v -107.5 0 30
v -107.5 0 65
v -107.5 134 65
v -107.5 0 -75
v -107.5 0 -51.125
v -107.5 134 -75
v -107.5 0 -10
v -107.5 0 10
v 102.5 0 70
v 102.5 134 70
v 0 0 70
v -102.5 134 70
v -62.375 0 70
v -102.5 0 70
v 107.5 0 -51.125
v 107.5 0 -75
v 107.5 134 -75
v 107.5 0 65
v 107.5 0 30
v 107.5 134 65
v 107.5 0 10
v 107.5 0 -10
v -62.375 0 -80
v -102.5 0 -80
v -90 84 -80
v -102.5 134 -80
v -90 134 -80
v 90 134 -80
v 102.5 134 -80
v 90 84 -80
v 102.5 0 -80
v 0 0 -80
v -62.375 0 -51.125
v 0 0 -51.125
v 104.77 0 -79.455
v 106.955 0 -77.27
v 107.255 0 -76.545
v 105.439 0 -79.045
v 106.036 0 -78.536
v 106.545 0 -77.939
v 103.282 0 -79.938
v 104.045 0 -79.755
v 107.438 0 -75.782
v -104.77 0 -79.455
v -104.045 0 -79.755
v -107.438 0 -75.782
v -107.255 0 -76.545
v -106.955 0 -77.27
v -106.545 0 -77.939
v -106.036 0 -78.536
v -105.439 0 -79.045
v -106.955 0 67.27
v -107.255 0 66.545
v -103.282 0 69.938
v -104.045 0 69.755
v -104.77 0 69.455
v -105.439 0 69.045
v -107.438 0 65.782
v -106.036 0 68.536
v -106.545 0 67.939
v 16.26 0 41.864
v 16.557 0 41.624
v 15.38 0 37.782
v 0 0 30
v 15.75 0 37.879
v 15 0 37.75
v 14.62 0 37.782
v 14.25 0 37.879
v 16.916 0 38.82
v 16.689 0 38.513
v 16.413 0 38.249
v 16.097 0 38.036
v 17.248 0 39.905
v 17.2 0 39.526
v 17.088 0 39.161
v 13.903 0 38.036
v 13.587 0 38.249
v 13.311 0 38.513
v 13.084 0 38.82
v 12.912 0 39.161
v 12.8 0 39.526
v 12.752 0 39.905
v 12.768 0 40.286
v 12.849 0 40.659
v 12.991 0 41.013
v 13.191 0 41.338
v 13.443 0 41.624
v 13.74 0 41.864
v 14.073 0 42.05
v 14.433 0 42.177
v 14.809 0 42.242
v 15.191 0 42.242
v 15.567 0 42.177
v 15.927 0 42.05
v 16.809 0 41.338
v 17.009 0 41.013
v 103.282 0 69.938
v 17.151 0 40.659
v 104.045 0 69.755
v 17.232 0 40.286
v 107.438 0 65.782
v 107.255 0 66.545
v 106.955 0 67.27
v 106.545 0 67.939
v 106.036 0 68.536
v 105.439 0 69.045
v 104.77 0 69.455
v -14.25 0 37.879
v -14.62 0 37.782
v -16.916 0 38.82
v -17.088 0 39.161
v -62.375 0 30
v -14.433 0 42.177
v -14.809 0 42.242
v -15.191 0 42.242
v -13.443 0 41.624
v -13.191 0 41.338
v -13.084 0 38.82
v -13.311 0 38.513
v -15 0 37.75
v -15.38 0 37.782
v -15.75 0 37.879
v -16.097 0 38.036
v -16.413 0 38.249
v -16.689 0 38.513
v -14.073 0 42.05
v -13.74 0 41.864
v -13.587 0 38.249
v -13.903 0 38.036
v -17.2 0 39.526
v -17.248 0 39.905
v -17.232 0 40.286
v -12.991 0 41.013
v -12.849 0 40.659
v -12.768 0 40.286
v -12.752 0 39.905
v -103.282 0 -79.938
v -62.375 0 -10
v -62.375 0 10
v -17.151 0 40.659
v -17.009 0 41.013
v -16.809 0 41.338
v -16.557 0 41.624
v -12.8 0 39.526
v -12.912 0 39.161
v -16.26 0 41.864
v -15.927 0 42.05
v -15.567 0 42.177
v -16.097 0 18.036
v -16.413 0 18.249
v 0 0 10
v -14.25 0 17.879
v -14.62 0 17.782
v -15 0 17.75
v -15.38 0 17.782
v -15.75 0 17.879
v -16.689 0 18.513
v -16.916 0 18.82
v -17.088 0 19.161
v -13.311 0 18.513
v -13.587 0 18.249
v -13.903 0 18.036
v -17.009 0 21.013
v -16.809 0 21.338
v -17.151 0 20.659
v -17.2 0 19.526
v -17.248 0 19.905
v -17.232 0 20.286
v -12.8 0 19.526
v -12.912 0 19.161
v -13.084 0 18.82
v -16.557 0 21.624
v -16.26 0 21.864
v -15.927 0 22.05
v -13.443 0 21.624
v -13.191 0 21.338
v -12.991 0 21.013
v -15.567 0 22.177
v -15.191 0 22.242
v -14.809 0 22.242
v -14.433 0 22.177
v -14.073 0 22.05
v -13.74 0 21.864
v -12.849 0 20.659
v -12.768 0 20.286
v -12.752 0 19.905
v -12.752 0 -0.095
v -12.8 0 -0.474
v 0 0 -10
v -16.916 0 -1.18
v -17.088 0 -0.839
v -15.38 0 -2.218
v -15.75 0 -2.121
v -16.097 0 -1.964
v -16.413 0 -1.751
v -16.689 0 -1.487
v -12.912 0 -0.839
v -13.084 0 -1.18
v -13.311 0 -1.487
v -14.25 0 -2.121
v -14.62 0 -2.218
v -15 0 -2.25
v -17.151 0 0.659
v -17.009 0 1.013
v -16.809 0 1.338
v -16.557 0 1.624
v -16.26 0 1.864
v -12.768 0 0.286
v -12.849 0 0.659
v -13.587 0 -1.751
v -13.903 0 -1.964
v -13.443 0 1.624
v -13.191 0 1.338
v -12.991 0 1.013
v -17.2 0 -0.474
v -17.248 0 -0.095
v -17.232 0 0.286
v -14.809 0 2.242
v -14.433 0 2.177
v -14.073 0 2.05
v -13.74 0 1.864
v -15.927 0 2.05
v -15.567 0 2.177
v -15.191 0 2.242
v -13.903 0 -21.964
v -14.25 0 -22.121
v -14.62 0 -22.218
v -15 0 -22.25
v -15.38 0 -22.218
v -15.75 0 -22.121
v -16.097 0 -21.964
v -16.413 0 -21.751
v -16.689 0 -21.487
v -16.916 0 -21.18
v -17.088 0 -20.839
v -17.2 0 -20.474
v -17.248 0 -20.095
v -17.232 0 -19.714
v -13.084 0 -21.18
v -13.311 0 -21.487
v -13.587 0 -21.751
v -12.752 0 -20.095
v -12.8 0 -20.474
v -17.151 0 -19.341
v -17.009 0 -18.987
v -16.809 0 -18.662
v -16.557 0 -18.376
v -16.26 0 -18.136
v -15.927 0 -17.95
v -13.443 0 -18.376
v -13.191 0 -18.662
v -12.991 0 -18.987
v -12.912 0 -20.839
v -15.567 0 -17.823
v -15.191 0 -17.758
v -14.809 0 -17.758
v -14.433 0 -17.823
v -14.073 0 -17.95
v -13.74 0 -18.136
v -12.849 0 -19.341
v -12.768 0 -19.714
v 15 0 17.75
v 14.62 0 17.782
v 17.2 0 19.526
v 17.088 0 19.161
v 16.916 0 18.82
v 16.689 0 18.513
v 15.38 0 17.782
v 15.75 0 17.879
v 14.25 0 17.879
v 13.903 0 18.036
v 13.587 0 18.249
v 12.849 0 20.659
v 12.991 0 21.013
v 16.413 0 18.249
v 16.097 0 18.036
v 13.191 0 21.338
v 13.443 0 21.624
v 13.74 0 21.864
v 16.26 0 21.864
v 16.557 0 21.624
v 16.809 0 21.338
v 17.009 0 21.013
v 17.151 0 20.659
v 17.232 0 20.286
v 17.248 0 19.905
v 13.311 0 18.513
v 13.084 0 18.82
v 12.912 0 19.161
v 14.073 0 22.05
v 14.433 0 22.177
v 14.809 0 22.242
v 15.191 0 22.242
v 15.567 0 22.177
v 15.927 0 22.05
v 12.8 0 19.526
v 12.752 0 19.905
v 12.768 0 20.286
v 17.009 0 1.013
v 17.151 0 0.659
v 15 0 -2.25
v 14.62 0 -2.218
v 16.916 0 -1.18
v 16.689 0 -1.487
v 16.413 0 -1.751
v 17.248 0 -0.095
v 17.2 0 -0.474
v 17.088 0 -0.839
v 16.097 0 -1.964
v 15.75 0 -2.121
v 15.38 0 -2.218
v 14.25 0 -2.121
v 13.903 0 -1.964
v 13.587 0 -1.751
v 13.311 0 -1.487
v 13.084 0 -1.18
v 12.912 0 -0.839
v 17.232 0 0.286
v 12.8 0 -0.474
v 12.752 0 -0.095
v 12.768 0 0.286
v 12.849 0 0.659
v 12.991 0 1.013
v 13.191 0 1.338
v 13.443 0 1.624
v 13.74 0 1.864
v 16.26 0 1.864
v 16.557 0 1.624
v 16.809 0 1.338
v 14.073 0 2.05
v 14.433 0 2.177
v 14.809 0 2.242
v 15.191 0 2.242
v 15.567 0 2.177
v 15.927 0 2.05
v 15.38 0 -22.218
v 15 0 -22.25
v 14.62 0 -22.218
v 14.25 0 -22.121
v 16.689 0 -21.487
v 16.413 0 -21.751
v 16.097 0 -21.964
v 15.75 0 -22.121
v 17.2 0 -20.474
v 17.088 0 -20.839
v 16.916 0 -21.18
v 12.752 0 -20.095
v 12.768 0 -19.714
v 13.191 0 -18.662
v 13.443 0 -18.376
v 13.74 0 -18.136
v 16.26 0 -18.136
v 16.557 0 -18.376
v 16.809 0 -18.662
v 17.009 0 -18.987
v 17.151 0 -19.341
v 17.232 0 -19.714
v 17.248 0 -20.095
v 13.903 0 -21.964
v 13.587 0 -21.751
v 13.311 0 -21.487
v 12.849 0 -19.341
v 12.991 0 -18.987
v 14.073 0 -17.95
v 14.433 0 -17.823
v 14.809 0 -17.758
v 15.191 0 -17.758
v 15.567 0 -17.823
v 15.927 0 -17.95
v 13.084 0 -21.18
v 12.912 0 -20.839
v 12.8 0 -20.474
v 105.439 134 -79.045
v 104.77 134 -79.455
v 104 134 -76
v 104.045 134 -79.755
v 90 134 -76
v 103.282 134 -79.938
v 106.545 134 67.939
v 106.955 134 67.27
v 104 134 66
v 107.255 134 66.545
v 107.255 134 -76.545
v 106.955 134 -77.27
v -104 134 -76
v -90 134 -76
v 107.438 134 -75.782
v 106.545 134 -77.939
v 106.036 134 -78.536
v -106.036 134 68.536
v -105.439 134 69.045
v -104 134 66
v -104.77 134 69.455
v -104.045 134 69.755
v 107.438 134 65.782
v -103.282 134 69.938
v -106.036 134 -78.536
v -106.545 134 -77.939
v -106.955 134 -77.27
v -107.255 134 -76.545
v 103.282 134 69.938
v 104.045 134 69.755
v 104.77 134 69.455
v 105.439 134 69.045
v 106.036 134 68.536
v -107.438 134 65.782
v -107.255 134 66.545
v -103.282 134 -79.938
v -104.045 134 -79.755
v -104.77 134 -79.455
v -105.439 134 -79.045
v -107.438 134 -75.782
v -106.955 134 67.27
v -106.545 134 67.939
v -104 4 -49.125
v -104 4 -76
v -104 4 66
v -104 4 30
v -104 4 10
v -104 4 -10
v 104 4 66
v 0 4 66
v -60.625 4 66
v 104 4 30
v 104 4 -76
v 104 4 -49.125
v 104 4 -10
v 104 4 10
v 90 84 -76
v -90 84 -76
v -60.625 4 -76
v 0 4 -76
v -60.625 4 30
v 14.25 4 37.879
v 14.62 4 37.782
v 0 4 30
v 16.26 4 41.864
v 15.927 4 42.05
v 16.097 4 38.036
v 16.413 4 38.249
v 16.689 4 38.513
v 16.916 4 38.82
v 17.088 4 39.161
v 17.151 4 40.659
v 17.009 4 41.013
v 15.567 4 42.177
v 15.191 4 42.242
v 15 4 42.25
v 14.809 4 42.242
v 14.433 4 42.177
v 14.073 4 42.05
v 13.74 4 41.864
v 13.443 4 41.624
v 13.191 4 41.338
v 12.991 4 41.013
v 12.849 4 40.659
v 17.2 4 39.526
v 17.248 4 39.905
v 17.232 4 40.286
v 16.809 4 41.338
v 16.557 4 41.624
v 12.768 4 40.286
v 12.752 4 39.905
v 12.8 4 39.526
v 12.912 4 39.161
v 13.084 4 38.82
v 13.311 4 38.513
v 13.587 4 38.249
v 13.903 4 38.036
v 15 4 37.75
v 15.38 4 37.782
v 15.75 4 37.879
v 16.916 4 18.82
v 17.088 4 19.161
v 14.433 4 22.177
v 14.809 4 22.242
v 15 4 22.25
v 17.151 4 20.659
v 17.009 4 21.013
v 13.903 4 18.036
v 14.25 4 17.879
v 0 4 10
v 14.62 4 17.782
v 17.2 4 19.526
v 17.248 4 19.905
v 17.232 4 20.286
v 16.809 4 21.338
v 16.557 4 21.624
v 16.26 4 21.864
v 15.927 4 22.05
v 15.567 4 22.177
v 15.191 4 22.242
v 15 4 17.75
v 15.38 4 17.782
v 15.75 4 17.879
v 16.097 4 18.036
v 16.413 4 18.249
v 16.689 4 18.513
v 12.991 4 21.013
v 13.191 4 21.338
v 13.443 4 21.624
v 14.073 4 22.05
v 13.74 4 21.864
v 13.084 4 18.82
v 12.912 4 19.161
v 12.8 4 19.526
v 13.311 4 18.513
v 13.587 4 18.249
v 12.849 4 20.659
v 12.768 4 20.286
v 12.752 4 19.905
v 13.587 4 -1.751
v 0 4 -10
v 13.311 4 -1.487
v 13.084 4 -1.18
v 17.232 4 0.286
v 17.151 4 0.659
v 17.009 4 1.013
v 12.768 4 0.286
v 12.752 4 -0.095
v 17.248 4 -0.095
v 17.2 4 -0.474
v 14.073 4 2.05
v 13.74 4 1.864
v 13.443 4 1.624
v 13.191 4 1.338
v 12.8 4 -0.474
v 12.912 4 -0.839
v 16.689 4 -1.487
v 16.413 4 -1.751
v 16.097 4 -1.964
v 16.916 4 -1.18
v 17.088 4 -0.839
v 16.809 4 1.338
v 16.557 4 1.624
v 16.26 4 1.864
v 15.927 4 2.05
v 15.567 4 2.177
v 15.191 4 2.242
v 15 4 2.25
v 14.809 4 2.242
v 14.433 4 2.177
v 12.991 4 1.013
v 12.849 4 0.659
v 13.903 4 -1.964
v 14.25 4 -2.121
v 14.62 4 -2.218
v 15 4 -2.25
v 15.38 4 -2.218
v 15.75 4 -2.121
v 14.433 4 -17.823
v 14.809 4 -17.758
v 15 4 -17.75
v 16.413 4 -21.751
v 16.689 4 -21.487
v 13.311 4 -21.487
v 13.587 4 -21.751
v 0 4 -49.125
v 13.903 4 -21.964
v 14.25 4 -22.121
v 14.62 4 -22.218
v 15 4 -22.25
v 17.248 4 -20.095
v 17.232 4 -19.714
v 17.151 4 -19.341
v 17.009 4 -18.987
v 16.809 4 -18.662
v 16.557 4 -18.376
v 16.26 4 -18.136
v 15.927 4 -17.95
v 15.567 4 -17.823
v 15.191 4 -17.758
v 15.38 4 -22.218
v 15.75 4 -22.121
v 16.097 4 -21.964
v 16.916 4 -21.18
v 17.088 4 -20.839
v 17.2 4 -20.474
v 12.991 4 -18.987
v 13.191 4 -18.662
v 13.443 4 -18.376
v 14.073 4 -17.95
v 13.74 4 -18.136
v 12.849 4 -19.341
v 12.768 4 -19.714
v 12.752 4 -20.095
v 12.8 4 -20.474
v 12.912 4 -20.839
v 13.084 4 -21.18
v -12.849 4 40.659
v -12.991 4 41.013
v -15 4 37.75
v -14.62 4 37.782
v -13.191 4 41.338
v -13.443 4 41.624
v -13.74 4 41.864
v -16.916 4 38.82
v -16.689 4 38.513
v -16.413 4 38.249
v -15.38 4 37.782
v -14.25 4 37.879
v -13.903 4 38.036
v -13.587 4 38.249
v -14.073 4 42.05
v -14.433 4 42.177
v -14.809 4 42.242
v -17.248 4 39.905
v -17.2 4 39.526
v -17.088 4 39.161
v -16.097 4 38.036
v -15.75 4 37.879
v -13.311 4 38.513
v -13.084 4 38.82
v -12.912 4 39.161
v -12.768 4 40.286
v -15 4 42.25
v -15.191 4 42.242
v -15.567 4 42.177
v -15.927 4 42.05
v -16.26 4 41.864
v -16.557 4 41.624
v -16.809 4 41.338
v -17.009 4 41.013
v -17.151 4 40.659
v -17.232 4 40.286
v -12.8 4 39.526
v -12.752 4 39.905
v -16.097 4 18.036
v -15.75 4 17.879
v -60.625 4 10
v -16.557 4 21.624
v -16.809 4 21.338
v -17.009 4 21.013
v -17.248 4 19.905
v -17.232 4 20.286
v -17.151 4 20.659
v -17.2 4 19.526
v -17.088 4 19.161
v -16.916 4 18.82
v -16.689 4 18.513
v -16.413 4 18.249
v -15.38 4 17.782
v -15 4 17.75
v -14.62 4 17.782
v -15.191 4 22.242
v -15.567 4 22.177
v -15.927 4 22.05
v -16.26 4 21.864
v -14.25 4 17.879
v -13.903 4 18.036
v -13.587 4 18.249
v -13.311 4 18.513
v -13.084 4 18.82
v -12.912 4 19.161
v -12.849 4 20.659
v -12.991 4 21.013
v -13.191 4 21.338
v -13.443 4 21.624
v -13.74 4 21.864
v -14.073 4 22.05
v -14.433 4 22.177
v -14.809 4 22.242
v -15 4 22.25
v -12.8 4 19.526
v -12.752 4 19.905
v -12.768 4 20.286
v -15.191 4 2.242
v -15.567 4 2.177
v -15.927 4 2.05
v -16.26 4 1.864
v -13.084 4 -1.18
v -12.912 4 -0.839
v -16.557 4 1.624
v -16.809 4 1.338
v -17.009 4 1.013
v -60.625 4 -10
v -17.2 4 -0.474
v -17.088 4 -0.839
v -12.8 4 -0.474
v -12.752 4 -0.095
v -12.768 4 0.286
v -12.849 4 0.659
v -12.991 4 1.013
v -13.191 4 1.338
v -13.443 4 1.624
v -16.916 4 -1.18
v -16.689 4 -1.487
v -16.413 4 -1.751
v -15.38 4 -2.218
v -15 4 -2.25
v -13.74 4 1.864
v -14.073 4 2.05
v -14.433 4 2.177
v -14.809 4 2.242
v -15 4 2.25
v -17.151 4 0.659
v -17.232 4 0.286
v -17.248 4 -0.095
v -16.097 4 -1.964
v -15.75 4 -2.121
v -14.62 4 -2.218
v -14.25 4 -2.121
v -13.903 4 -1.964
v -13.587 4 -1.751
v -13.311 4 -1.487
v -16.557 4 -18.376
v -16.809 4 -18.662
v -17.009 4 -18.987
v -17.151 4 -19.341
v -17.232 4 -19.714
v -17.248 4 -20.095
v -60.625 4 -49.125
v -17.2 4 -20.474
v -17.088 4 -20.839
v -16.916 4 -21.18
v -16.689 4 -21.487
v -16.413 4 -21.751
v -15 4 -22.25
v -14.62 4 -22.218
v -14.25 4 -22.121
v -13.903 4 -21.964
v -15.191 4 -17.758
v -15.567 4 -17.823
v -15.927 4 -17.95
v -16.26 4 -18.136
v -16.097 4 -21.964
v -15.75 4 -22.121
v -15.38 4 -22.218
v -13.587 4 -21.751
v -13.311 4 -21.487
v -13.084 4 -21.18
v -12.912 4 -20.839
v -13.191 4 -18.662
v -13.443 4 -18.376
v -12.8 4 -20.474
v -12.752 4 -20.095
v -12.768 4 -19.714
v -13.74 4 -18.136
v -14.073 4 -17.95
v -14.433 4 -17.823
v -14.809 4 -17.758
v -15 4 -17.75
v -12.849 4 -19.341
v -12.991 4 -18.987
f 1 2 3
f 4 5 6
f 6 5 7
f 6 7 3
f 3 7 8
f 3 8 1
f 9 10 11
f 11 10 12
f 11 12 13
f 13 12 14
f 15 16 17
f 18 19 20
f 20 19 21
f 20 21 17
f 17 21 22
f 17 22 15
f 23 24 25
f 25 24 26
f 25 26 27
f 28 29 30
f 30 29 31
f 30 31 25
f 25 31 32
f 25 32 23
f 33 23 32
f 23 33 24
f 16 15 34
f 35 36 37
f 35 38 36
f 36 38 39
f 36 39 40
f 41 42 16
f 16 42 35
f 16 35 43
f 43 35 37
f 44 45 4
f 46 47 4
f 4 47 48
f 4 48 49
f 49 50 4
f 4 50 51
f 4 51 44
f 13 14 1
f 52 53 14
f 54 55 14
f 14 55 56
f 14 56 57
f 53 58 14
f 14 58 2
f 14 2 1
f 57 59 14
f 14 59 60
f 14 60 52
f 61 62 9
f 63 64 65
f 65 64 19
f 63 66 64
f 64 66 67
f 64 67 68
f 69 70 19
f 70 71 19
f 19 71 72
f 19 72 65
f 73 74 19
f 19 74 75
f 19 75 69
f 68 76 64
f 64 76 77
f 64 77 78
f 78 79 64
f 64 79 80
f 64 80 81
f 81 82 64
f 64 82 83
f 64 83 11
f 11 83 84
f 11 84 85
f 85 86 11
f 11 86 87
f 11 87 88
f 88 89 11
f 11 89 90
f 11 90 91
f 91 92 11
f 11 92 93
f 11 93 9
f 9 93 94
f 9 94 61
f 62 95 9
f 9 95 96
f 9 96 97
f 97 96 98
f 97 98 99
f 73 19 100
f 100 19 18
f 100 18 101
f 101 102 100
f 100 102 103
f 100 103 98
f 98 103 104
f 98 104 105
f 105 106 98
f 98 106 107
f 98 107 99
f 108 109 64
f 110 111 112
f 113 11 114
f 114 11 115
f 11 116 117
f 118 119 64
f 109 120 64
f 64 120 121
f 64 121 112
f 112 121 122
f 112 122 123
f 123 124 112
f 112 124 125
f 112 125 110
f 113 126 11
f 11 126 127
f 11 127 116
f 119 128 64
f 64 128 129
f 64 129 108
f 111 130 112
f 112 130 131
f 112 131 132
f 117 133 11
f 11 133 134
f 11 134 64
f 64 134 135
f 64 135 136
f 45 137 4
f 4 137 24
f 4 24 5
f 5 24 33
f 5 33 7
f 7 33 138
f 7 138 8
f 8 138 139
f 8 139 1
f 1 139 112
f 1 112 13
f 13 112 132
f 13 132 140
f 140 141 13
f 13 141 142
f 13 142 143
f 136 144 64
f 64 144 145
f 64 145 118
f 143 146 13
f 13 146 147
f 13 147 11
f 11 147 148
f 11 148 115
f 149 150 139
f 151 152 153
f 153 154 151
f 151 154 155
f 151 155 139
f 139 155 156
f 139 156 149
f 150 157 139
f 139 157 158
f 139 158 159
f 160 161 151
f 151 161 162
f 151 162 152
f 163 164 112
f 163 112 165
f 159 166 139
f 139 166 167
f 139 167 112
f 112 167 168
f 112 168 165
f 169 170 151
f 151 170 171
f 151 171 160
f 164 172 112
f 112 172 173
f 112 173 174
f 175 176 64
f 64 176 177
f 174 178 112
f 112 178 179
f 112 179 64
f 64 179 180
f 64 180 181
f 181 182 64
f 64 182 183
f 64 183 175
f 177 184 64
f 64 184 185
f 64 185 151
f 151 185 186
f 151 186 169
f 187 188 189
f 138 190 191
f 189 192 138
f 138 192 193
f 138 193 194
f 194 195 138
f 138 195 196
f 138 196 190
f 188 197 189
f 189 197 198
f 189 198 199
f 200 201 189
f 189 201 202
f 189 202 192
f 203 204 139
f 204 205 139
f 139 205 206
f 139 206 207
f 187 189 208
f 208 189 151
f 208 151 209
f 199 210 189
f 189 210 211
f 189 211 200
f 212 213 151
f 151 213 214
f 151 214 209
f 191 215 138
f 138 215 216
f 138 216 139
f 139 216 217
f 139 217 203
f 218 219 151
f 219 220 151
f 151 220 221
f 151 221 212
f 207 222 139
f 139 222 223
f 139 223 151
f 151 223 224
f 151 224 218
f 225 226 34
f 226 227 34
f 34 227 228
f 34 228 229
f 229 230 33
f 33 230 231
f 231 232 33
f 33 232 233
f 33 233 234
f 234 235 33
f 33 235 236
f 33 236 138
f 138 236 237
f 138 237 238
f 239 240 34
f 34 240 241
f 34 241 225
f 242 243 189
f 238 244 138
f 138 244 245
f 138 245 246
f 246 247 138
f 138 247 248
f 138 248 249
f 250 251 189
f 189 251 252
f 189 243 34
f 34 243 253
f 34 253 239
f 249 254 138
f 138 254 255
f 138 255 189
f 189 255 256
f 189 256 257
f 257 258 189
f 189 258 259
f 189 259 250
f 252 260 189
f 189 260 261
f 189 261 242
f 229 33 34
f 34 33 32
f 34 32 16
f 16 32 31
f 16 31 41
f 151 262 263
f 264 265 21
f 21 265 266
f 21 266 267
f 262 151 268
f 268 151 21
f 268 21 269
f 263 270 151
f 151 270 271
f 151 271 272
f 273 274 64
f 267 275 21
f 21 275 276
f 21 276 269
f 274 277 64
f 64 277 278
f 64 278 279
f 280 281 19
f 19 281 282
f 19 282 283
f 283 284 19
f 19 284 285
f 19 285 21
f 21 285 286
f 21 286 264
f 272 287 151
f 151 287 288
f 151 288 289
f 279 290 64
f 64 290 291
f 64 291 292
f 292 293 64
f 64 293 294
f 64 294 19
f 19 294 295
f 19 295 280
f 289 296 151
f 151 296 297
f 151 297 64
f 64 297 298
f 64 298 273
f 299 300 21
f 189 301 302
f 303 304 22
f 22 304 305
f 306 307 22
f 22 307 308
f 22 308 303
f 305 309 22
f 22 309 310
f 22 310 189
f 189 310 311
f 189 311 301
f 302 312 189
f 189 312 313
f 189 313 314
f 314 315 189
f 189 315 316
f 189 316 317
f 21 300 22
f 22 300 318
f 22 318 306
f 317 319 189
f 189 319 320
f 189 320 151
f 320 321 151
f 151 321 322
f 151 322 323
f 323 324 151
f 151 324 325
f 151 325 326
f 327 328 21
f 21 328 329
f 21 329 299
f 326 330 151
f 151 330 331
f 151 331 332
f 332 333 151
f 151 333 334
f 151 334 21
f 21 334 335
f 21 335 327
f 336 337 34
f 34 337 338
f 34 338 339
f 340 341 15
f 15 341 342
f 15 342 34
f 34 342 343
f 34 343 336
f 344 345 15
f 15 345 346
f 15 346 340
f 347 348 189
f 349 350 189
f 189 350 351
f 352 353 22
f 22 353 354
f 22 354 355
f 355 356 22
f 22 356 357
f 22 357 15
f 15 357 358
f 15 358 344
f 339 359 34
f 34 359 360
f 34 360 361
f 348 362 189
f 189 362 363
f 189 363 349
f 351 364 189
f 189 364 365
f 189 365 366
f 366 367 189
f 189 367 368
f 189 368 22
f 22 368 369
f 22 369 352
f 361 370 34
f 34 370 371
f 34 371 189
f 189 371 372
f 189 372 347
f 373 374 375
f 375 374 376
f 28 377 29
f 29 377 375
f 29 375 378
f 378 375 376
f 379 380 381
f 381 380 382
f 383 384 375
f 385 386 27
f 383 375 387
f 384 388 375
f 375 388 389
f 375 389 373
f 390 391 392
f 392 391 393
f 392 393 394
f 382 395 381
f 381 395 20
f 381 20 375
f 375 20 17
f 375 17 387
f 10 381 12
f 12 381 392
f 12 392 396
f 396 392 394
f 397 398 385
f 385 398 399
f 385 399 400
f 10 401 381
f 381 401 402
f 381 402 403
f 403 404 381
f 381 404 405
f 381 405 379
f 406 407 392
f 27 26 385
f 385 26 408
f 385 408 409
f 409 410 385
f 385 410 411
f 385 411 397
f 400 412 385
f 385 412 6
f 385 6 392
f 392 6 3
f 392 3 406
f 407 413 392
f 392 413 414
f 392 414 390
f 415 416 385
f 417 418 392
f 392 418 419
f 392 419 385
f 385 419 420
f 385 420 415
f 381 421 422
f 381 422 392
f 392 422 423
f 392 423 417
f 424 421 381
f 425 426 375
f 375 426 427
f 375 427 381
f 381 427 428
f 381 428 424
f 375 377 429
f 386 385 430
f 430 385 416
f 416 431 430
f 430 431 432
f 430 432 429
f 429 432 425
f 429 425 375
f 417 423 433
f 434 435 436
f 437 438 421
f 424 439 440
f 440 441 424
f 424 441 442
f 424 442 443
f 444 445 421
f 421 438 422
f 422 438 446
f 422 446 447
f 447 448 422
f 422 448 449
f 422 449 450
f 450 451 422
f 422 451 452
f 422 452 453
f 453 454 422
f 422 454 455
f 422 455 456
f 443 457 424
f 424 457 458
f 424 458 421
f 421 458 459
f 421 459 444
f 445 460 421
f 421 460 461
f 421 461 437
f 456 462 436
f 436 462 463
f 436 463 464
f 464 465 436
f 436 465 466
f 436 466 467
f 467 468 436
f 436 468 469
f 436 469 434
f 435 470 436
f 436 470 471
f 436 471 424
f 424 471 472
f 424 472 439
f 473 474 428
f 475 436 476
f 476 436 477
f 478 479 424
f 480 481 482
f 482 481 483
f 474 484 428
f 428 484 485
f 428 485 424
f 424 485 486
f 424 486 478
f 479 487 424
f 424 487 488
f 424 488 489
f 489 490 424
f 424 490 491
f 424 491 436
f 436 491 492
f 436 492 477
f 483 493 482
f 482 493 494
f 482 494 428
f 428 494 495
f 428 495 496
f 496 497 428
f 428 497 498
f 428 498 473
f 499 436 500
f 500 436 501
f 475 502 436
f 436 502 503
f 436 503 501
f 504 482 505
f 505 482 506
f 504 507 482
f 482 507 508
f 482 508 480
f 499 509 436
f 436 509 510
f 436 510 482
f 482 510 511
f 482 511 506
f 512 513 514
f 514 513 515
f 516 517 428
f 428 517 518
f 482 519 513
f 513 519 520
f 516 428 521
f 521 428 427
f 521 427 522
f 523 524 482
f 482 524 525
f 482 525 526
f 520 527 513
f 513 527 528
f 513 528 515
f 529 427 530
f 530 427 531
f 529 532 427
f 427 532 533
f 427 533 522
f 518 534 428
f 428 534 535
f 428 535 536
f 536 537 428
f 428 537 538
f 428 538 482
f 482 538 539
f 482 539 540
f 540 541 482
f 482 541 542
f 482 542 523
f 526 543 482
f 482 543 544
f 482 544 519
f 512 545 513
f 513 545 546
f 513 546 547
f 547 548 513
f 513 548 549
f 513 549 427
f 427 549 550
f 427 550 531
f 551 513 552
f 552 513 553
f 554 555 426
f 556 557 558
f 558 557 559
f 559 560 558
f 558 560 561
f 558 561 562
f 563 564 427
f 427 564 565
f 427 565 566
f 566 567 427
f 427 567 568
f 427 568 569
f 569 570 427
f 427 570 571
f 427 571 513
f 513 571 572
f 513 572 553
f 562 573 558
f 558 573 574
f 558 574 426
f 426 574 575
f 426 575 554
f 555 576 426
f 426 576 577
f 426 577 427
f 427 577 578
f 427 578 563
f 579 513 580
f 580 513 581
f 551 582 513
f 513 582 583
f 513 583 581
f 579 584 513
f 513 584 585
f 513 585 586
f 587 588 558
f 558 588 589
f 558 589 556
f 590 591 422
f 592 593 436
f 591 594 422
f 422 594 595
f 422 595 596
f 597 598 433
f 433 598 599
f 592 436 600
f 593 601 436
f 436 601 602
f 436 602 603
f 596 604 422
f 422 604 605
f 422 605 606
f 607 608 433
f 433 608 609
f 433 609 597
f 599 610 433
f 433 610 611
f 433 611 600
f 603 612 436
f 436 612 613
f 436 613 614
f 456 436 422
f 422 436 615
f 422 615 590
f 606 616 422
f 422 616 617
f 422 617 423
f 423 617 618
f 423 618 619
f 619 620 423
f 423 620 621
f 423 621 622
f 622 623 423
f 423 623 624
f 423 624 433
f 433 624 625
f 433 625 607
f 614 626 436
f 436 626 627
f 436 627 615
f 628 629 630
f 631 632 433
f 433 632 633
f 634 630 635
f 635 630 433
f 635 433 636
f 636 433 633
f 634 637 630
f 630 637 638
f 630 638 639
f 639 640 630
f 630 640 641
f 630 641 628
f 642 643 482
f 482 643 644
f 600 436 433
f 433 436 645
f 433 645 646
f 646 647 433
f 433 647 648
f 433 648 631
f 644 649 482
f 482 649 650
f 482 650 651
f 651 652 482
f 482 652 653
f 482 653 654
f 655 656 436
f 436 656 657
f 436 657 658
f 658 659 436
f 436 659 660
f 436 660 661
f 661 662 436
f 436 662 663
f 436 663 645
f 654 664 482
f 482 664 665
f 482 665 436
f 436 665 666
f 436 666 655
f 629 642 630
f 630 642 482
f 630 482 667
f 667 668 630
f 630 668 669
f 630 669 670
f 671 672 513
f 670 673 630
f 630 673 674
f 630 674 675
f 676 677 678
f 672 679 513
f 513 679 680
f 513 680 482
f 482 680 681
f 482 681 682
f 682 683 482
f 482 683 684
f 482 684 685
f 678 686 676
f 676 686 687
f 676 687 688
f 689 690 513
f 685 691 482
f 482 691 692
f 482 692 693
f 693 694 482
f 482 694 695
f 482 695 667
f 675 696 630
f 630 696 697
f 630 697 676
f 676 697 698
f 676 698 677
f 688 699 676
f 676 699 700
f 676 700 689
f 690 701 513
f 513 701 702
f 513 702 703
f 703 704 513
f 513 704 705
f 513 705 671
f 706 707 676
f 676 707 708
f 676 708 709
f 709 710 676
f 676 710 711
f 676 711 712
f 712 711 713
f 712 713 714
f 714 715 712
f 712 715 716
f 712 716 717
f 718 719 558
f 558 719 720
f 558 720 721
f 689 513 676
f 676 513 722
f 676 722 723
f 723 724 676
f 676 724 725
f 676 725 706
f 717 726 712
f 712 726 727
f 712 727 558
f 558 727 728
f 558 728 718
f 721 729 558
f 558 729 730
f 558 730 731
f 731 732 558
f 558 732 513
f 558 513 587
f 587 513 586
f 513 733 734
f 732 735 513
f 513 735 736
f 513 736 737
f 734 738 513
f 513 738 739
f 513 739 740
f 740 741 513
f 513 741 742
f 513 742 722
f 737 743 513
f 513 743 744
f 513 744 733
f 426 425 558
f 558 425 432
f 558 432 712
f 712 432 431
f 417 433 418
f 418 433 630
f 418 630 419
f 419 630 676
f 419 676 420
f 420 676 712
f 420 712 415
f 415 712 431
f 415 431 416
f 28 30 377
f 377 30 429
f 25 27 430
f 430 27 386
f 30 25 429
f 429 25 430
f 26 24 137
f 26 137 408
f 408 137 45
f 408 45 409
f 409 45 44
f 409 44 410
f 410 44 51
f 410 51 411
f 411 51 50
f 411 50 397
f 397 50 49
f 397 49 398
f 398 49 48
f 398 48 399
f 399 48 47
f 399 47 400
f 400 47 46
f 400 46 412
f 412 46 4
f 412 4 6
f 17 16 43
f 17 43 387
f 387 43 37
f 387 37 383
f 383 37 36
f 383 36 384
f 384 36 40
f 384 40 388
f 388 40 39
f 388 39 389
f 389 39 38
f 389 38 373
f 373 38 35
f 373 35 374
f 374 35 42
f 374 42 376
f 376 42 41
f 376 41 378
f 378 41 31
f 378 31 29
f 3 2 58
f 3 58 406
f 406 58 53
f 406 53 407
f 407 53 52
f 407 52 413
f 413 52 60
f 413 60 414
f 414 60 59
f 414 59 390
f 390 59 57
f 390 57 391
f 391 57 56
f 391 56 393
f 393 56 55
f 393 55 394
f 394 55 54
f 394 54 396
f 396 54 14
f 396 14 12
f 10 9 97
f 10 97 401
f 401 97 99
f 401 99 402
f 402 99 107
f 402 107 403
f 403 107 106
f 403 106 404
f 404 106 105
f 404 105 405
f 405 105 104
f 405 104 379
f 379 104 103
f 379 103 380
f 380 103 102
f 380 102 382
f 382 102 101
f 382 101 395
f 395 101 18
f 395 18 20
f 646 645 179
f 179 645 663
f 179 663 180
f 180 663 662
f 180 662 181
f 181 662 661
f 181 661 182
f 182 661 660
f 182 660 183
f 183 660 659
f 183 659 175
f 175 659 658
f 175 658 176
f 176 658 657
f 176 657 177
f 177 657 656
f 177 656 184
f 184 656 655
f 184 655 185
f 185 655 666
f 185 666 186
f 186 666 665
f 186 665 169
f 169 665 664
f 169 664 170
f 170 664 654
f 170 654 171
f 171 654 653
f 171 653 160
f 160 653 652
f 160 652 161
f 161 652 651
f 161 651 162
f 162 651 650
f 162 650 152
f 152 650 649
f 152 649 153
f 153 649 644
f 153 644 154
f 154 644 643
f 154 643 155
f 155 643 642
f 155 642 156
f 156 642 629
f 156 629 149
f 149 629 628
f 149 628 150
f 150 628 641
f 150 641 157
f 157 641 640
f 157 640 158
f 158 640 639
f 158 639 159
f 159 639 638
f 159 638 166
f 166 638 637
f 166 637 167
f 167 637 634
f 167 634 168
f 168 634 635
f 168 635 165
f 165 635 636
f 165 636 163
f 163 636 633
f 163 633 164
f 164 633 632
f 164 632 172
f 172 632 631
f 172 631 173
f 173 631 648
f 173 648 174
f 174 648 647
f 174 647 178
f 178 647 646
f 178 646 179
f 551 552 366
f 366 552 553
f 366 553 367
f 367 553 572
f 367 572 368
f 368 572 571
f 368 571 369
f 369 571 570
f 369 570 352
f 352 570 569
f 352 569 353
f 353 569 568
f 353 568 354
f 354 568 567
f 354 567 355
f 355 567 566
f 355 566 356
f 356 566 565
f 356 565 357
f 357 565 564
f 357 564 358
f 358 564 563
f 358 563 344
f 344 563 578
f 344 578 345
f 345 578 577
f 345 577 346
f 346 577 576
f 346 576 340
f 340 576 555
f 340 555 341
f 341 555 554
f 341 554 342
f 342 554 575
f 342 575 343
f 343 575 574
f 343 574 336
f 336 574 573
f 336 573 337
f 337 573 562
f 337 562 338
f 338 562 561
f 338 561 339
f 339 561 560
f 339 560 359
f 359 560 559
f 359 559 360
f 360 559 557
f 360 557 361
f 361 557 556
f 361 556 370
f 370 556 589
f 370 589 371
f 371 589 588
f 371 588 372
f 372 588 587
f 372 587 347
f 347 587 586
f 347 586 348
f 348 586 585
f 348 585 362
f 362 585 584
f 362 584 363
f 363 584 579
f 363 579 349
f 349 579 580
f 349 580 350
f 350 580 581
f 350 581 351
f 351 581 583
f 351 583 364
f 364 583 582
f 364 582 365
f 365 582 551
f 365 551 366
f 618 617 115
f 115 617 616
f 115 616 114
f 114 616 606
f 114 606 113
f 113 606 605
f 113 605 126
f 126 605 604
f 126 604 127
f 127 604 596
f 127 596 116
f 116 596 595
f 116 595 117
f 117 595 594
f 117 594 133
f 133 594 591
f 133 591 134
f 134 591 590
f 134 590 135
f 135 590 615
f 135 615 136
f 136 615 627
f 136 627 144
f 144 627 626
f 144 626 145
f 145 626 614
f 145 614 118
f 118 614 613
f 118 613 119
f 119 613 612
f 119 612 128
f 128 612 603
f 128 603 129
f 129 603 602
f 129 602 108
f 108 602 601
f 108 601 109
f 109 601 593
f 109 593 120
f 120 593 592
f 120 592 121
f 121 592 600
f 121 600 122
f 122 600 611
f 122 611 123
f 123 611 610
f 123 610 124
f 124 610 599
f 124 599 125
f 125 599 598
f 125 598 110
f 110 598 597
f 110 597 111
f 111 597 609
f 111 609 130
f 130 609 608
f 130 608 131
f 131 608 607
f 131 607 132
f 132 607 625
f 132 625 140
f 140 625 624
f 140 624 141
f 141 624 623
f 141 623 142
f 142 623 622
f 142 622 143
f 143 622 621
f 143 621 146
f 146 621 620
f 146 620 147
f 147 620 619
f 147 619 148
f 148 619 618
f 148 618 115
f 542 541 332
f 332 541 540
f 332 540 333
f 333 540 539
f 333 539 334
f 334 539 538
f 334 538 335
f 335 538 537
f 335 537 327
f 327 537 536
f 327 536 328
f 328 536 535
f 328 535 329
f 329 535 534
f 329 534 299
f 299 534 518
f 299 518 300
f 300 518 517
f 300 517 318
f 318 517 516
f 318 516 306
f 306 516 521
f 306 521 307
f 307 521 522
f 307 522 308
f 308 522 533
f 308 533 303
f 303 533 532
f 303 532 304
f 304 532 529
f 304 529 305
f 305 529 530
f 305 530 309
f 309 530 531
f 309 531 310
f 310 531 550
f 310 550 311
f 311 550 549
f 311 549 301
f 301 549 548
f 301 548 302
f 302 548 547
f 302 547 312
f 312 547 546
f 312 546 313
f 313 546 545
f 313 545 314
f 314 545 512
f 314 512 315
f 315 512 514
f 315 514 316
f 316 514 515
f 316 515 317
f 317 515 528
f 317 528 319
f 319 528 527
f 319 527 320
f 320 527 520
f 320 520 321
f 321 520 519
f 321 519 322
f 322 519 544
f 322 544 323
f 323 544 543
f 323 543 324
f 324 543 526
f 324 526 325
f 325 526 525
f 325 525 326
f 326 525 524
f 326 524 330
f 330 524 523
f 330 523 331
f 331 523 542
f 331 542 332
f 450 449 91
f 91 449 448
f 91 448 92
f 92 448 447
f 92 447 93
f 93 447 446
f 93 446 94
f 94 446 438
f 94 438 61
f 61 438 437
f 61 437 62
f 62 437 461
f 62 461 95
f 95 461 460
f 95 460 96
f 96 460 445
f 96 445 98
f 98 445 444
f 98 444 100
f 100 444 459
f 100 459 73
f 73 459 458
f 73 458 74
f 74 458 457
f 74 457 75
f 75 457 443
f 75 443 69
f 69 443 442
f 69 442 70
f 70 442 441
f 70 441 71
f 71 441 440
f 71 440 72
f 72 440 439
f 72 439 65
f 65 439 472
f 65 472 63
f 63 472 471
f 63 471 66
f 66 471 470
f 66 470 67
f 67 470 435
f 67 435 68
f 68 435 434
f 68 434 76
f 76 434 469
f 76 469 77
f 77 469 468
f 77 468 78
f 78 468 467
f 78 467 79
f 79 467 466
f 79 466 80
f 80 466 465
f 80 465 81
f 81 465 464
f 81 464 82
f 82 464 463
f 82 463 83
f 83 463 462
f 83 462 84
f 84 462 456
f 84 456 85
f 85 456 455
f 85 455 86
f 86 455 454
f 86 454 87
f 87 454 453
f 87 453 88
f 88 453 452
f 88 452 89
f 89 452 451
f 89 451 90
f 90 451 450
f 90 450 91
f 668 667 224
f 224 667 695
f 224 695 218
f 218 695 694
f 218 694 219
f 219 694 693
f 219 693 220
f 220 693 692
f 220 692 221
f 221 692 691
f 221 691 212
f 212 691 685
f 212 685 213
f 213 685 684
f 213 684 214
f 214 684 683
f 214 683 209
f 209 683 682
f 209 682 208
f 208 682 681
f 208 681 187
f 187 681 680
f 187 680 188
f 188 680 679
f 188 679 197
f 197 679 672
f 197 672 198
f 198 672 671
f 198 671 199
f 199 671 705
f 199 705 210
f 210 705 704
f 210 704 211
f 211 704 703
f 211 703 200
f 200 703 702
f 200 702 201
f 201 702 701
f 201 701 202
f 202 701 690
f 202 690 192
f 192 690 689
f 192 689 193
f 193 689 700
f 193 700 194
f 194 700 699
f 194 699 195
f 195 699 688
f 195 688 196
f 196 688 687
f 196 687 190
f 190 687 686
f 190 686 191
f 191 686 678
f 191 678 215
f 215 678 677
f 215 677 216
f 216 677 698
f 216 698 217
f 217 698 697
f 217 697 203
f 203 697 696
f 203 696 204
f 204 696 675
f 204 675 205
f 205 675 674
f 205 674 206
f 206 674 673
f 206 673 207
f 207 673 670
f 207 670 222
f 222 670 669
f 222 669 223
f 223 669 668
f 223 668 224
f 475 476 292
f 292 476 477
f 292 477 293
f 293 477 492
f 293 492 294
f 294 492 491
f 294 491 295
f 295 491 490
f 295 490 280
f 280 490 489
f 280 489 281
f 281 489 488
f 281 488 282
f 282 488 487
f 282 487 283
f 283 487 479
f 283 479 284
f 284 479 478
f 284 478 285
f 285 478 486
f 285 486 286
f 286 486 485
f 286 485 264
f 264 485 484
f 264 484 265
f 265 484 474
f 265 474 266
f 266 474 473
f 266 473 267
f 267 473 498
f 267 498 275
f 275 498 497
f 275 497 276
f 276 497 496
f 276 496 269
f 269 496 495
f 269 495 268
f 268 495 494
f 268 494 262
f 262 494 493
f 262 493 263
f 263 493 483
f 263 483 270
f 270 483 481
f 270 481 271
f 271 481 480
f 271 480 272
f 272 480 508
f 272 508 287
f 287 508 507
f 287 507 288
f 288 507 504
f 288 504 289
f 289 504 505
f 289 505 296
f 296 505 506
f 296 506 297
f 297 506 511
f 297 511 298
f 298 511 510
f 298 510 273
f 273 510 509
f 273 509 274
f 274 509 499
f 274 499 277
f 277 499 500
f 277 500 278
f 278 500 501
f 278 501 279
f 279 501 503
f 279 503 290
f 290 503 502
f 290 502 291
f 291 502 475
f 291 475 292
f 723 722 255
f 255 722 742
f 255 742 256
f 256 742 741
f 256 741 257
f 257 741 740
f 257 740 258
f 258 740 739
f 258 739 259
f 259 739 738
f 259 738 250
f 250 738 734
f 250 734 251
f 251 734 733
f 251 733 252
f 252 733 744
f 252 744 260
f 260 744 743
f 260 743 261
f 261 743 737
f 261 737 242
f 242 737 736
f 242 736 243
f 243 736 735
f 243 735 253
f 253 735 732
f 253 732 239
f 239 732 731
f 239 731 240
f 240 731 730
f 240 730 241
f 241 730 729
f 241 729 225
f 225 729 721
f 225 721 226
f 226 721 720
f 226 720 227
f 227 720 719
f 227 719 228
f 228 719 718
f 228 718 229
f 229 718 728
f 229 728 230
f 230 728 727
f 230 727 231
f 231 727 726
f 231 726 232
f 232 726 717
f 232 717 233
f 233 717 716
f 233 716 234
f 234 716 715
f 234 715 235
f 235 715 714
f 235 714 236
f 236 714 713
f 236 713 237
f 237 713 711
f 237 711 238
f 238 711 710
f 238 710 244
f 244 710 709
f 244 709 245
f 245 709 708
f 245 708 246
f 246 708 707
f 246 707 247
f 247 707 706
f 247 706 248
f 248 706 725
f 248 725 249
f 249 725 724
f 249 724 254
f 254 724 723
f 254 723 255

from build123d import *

# Parameters (mm, degrees)
SKETCH1_W           = 215
SKETCH1_H           = 150
BOSS_EXTRUDE1_DEPTH = 4
SKETCH2_W           = 215
SKETCH2_H           = 150
SKETCH2_W_2         = 208
SKETCH2_H_2         = 142
BOSS_EXTRUDE2_DEPTH = 130
SKETCH4_W           = 180
SKETCH4_H           = 50
CUT_EXTRUDE1_DEPTH  = 6
FILLET1_R           = 5
FILLET2_R           = 5
FILLET3_R           = 5
FILLET4_R           = 5
SKETCH6_R           = 2.25
CUT_EXTRUDE2_DEPTH  = 6


with BuildPart() as part:
    # Sketch1 → Boss-Extrude1 (new body)
    with BuildSketch(Plane(origin=(0, 0, 0), x_dir=(1, 0, 0), z_dir=(0, 1, 0))):
        with Locations((0, 5)):
            Rectangle(SKETCH1_W, SKETCH1_H)
    extrude(amount=BOSS_EXTRUDE1_DEPTH)

    # Sketch2 → Boss-Extrude2 (add)
    with BuildSketch(Plane(origin=(0, 4, 0), x_dir=(1, 0, 0), z_dir=(0, 1, 0))):
        with Locations((0, 5)):
            Rectangle(SKETCH2_W, SKETCH2_H)
        with Locations((0, 5)):
            Rectangle(SKETCH2_W_2, SKETCH2_H_2, mode=Mode.SUBTRACT)
    extrude(amount=BOSS_EXTRUDE2_DEPTH)

    # Sketch4 → Cut-Extrude1 (cut)
    with BuildSketch(Plane(origin=(0, 0, -80), x_dir=(-1, 0, 0), z_dir=(0, 0, -1))):
        with Locations((0, 109)):
            Rectangle(SKETCH4_W, SKETCH4_H)
    extrude(amount=-CUT_EXTRUDE1_DEPTH, mode=Mode.SUBTRACT)

    # Fillet1
    fillet1_edges = [part.edges().sort_by_distance(p)[0] for p in [
        (-107.5, 67, -80),
    ]]
    fillet(fillet1_edges, radius=FILLET1_R)

    # Fillet2
    fillet2_edges = [part.edges().sort_by_distance(p)[0] for p in [
        (107.5, 67, -80),
    ]]
    fillet(fillet2_edges, radius=FILLET2_R)

    # Fillet3
    fillet3_edges = [part.edges().sort_by_distance(p)[0] for p in [
        (-107.5, 67, 70),
    ]]
    fillet(fillet3_edges, radius=FILLET3_R)

    # Fillet4
    fillet4_edges = [part.edges().sort_by_distance(p)[0] for p in [
        (107.5, 67, 70),
    ]]
    fillet(fillet4_edges, radius=FILLET4_R)

    # Sketch6 → Cut-Extrude2 (cut)
    with BuildSketch(Plane(origin=(0, 0, 0), x_dir=(-1, 0, 0), z_dir=(0, -1, 0))):
        with Locations(Location((15, -20, 0), (0, 0, 90))):
            Circle(SKETCH6_R)
        with Locations(Location((-15, -40, 0), (0, 0, 90))):
            Circle(SKETCH6_R)
        with Locations(Location((15, 0, 0), (0, 0, 90))):
            Circle(SKETCH6_R)
        with Locations(Location((-15, -20, 0), (0, 0, 90))):
            Circle(SKETCH6_R)
        with Locations(Location((15, 20, 0), (0, 0, 90))):
            Circle(SKETCH6_R)
        with Locations(Location((-15, 20, 0), (0, 0, 90))):
            Circle(SKETCH6_R)
        with Locations(Location((15, -40, 0), (0, 0, 90))):
            Circle(SKETCH6_R)
        with Locations(Location((-15, 0, 0), (0, 0, 90))):
            Circle(SKETCH6_R)
    extrude(amount=-CUT_EXTRUDE2_DEPTH, mode=Mode.SUBTRACT)


solid = part.part
